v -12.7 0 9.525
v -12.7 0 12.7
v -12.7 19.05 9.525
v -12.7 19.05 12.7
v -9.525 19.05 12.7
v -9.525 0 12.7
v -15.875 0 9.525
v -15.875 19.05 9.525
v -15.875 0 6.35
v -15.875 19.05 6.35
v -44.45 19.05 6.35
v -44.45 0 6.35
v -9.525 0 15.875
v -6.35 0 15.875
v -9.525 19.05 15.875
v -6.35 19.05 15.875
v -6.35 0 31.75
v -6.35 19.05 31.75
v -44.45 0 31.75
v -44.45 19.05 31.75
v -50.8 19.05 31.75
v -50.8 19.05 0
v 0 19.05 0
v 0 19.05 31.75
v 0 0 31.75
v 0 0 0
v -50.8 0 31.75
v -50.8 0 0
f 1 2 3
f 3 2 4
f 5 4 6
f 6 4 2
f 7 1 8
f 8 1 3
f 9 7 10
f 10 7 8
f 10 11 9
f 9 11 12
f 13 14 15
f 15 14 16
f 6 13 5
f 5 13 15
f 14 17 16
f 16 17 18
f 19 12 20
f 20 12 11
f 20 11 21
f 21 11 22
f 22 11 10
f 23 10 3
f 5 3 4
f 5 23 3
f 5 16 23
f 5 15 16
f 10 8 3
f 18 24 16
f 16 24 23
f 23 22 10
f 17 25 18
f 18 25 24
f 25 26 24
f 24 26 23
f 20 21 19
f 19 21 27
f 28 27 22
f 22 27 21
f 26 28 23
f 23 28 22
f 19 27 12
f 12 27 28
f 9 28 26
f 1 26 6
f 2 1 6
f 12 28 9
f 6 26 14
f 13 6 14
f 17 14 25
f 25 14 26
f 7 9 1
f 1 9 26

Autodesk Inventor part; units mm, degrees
ref_plane "YZ Plane" through (0, 0, 0) normal (1, 0, 0) x (0, 1, 0)
ref_plane "XZ Plane" through (0, 0, 0) normal (0, 1, 0) x (-1, 0, 0)
ref_plane "XY Plane" through (0, 0, 0) normal (0, 0, 1) x (1, 0, 0)
sketch "Sketch1" plane through (0, 0, 0) normal (0, 1, 0) x (-1, 0, 0)
  line L0 (0, 0) -> (50.8, 0)
  line L1 (50.8, 0) -> (50.8, 31.75)
  line L2 (50.8, 31.75) -> (0, 31.75)
  line L3 (0, 31.75) -> (0, 0)
  line L4 (0, 0) -> (6.35, 0)
  line L5 (6.35, 0) -> (6.35, 6.35)
  line L6 (6.35, 6.35) -> (0, 6.35)
  line L7 (0, 6.35) -> (0, 0)
  line L8 (6.35, 6.35) -> (44.45, 6.35)
  line L9 (44.45, 6.35) -> (44.45, 31.75)
  line L10 (44.45, 31.75) -> (6.35, 31.75)
  line L11 (6.35, 31.75) -> (6.35, 6.35)
  line L12 (6.35, 6.35) -> (12.7, 6.35)
  line L13 (12.7, 6.35) -> (12.7, 12.7)
  line L14 (12.7, 12.7) -> (6.35, 12.7)
  line L15 (6.35, 12.7) -> (6.35, 6.35)
  line L16 (12.7, 6.35) -> (15.875, 6.35)
  line L17 (15.875, 6.35) -> (15.875, 9.525)
  line L18 (15.875, 9.525) -> (12.7, 9.525)
  line L19 (12.7, 9.525) -> (12.7, 6.35)
  line L20 (6.35, 12.7) -> (9.525, 12.7)
  line L21 (9.525, 12.7) -> (9.525, 15.875)
  line L22 (9.525, 15.875) -> (6.35, 15.875)
  line L23 (6.35, 15.875) -> (6.35, 12.7)
  dimension "d0" = 50.8
  dimension "d1" = 31.75
  dimension "d2" = 6.35
  dimension "d3" = 6.35
  dimension "d4" = 38.1
  dimension "d5" = 25.4
  dimension "d6" = 6.35
  dimension "d7" = 6.35
  dimension "d8" = 3.175
  dimension "d9" = 3.175
  dimension "d10" = 3.175
  dimension "d11" = 3.175
extrude "Extrusion1" add sketch "Sketch1" along normal blind 19.05 contours L3 L6 L5 L0 | L5 L8 L9 L2 L1 L0 | L3 L2 L11 L6 | L11 L14 L13 L8 | L13 L18 L17 L8 | L11 L22 L21 L14
properties part number "penHolderHolder"
